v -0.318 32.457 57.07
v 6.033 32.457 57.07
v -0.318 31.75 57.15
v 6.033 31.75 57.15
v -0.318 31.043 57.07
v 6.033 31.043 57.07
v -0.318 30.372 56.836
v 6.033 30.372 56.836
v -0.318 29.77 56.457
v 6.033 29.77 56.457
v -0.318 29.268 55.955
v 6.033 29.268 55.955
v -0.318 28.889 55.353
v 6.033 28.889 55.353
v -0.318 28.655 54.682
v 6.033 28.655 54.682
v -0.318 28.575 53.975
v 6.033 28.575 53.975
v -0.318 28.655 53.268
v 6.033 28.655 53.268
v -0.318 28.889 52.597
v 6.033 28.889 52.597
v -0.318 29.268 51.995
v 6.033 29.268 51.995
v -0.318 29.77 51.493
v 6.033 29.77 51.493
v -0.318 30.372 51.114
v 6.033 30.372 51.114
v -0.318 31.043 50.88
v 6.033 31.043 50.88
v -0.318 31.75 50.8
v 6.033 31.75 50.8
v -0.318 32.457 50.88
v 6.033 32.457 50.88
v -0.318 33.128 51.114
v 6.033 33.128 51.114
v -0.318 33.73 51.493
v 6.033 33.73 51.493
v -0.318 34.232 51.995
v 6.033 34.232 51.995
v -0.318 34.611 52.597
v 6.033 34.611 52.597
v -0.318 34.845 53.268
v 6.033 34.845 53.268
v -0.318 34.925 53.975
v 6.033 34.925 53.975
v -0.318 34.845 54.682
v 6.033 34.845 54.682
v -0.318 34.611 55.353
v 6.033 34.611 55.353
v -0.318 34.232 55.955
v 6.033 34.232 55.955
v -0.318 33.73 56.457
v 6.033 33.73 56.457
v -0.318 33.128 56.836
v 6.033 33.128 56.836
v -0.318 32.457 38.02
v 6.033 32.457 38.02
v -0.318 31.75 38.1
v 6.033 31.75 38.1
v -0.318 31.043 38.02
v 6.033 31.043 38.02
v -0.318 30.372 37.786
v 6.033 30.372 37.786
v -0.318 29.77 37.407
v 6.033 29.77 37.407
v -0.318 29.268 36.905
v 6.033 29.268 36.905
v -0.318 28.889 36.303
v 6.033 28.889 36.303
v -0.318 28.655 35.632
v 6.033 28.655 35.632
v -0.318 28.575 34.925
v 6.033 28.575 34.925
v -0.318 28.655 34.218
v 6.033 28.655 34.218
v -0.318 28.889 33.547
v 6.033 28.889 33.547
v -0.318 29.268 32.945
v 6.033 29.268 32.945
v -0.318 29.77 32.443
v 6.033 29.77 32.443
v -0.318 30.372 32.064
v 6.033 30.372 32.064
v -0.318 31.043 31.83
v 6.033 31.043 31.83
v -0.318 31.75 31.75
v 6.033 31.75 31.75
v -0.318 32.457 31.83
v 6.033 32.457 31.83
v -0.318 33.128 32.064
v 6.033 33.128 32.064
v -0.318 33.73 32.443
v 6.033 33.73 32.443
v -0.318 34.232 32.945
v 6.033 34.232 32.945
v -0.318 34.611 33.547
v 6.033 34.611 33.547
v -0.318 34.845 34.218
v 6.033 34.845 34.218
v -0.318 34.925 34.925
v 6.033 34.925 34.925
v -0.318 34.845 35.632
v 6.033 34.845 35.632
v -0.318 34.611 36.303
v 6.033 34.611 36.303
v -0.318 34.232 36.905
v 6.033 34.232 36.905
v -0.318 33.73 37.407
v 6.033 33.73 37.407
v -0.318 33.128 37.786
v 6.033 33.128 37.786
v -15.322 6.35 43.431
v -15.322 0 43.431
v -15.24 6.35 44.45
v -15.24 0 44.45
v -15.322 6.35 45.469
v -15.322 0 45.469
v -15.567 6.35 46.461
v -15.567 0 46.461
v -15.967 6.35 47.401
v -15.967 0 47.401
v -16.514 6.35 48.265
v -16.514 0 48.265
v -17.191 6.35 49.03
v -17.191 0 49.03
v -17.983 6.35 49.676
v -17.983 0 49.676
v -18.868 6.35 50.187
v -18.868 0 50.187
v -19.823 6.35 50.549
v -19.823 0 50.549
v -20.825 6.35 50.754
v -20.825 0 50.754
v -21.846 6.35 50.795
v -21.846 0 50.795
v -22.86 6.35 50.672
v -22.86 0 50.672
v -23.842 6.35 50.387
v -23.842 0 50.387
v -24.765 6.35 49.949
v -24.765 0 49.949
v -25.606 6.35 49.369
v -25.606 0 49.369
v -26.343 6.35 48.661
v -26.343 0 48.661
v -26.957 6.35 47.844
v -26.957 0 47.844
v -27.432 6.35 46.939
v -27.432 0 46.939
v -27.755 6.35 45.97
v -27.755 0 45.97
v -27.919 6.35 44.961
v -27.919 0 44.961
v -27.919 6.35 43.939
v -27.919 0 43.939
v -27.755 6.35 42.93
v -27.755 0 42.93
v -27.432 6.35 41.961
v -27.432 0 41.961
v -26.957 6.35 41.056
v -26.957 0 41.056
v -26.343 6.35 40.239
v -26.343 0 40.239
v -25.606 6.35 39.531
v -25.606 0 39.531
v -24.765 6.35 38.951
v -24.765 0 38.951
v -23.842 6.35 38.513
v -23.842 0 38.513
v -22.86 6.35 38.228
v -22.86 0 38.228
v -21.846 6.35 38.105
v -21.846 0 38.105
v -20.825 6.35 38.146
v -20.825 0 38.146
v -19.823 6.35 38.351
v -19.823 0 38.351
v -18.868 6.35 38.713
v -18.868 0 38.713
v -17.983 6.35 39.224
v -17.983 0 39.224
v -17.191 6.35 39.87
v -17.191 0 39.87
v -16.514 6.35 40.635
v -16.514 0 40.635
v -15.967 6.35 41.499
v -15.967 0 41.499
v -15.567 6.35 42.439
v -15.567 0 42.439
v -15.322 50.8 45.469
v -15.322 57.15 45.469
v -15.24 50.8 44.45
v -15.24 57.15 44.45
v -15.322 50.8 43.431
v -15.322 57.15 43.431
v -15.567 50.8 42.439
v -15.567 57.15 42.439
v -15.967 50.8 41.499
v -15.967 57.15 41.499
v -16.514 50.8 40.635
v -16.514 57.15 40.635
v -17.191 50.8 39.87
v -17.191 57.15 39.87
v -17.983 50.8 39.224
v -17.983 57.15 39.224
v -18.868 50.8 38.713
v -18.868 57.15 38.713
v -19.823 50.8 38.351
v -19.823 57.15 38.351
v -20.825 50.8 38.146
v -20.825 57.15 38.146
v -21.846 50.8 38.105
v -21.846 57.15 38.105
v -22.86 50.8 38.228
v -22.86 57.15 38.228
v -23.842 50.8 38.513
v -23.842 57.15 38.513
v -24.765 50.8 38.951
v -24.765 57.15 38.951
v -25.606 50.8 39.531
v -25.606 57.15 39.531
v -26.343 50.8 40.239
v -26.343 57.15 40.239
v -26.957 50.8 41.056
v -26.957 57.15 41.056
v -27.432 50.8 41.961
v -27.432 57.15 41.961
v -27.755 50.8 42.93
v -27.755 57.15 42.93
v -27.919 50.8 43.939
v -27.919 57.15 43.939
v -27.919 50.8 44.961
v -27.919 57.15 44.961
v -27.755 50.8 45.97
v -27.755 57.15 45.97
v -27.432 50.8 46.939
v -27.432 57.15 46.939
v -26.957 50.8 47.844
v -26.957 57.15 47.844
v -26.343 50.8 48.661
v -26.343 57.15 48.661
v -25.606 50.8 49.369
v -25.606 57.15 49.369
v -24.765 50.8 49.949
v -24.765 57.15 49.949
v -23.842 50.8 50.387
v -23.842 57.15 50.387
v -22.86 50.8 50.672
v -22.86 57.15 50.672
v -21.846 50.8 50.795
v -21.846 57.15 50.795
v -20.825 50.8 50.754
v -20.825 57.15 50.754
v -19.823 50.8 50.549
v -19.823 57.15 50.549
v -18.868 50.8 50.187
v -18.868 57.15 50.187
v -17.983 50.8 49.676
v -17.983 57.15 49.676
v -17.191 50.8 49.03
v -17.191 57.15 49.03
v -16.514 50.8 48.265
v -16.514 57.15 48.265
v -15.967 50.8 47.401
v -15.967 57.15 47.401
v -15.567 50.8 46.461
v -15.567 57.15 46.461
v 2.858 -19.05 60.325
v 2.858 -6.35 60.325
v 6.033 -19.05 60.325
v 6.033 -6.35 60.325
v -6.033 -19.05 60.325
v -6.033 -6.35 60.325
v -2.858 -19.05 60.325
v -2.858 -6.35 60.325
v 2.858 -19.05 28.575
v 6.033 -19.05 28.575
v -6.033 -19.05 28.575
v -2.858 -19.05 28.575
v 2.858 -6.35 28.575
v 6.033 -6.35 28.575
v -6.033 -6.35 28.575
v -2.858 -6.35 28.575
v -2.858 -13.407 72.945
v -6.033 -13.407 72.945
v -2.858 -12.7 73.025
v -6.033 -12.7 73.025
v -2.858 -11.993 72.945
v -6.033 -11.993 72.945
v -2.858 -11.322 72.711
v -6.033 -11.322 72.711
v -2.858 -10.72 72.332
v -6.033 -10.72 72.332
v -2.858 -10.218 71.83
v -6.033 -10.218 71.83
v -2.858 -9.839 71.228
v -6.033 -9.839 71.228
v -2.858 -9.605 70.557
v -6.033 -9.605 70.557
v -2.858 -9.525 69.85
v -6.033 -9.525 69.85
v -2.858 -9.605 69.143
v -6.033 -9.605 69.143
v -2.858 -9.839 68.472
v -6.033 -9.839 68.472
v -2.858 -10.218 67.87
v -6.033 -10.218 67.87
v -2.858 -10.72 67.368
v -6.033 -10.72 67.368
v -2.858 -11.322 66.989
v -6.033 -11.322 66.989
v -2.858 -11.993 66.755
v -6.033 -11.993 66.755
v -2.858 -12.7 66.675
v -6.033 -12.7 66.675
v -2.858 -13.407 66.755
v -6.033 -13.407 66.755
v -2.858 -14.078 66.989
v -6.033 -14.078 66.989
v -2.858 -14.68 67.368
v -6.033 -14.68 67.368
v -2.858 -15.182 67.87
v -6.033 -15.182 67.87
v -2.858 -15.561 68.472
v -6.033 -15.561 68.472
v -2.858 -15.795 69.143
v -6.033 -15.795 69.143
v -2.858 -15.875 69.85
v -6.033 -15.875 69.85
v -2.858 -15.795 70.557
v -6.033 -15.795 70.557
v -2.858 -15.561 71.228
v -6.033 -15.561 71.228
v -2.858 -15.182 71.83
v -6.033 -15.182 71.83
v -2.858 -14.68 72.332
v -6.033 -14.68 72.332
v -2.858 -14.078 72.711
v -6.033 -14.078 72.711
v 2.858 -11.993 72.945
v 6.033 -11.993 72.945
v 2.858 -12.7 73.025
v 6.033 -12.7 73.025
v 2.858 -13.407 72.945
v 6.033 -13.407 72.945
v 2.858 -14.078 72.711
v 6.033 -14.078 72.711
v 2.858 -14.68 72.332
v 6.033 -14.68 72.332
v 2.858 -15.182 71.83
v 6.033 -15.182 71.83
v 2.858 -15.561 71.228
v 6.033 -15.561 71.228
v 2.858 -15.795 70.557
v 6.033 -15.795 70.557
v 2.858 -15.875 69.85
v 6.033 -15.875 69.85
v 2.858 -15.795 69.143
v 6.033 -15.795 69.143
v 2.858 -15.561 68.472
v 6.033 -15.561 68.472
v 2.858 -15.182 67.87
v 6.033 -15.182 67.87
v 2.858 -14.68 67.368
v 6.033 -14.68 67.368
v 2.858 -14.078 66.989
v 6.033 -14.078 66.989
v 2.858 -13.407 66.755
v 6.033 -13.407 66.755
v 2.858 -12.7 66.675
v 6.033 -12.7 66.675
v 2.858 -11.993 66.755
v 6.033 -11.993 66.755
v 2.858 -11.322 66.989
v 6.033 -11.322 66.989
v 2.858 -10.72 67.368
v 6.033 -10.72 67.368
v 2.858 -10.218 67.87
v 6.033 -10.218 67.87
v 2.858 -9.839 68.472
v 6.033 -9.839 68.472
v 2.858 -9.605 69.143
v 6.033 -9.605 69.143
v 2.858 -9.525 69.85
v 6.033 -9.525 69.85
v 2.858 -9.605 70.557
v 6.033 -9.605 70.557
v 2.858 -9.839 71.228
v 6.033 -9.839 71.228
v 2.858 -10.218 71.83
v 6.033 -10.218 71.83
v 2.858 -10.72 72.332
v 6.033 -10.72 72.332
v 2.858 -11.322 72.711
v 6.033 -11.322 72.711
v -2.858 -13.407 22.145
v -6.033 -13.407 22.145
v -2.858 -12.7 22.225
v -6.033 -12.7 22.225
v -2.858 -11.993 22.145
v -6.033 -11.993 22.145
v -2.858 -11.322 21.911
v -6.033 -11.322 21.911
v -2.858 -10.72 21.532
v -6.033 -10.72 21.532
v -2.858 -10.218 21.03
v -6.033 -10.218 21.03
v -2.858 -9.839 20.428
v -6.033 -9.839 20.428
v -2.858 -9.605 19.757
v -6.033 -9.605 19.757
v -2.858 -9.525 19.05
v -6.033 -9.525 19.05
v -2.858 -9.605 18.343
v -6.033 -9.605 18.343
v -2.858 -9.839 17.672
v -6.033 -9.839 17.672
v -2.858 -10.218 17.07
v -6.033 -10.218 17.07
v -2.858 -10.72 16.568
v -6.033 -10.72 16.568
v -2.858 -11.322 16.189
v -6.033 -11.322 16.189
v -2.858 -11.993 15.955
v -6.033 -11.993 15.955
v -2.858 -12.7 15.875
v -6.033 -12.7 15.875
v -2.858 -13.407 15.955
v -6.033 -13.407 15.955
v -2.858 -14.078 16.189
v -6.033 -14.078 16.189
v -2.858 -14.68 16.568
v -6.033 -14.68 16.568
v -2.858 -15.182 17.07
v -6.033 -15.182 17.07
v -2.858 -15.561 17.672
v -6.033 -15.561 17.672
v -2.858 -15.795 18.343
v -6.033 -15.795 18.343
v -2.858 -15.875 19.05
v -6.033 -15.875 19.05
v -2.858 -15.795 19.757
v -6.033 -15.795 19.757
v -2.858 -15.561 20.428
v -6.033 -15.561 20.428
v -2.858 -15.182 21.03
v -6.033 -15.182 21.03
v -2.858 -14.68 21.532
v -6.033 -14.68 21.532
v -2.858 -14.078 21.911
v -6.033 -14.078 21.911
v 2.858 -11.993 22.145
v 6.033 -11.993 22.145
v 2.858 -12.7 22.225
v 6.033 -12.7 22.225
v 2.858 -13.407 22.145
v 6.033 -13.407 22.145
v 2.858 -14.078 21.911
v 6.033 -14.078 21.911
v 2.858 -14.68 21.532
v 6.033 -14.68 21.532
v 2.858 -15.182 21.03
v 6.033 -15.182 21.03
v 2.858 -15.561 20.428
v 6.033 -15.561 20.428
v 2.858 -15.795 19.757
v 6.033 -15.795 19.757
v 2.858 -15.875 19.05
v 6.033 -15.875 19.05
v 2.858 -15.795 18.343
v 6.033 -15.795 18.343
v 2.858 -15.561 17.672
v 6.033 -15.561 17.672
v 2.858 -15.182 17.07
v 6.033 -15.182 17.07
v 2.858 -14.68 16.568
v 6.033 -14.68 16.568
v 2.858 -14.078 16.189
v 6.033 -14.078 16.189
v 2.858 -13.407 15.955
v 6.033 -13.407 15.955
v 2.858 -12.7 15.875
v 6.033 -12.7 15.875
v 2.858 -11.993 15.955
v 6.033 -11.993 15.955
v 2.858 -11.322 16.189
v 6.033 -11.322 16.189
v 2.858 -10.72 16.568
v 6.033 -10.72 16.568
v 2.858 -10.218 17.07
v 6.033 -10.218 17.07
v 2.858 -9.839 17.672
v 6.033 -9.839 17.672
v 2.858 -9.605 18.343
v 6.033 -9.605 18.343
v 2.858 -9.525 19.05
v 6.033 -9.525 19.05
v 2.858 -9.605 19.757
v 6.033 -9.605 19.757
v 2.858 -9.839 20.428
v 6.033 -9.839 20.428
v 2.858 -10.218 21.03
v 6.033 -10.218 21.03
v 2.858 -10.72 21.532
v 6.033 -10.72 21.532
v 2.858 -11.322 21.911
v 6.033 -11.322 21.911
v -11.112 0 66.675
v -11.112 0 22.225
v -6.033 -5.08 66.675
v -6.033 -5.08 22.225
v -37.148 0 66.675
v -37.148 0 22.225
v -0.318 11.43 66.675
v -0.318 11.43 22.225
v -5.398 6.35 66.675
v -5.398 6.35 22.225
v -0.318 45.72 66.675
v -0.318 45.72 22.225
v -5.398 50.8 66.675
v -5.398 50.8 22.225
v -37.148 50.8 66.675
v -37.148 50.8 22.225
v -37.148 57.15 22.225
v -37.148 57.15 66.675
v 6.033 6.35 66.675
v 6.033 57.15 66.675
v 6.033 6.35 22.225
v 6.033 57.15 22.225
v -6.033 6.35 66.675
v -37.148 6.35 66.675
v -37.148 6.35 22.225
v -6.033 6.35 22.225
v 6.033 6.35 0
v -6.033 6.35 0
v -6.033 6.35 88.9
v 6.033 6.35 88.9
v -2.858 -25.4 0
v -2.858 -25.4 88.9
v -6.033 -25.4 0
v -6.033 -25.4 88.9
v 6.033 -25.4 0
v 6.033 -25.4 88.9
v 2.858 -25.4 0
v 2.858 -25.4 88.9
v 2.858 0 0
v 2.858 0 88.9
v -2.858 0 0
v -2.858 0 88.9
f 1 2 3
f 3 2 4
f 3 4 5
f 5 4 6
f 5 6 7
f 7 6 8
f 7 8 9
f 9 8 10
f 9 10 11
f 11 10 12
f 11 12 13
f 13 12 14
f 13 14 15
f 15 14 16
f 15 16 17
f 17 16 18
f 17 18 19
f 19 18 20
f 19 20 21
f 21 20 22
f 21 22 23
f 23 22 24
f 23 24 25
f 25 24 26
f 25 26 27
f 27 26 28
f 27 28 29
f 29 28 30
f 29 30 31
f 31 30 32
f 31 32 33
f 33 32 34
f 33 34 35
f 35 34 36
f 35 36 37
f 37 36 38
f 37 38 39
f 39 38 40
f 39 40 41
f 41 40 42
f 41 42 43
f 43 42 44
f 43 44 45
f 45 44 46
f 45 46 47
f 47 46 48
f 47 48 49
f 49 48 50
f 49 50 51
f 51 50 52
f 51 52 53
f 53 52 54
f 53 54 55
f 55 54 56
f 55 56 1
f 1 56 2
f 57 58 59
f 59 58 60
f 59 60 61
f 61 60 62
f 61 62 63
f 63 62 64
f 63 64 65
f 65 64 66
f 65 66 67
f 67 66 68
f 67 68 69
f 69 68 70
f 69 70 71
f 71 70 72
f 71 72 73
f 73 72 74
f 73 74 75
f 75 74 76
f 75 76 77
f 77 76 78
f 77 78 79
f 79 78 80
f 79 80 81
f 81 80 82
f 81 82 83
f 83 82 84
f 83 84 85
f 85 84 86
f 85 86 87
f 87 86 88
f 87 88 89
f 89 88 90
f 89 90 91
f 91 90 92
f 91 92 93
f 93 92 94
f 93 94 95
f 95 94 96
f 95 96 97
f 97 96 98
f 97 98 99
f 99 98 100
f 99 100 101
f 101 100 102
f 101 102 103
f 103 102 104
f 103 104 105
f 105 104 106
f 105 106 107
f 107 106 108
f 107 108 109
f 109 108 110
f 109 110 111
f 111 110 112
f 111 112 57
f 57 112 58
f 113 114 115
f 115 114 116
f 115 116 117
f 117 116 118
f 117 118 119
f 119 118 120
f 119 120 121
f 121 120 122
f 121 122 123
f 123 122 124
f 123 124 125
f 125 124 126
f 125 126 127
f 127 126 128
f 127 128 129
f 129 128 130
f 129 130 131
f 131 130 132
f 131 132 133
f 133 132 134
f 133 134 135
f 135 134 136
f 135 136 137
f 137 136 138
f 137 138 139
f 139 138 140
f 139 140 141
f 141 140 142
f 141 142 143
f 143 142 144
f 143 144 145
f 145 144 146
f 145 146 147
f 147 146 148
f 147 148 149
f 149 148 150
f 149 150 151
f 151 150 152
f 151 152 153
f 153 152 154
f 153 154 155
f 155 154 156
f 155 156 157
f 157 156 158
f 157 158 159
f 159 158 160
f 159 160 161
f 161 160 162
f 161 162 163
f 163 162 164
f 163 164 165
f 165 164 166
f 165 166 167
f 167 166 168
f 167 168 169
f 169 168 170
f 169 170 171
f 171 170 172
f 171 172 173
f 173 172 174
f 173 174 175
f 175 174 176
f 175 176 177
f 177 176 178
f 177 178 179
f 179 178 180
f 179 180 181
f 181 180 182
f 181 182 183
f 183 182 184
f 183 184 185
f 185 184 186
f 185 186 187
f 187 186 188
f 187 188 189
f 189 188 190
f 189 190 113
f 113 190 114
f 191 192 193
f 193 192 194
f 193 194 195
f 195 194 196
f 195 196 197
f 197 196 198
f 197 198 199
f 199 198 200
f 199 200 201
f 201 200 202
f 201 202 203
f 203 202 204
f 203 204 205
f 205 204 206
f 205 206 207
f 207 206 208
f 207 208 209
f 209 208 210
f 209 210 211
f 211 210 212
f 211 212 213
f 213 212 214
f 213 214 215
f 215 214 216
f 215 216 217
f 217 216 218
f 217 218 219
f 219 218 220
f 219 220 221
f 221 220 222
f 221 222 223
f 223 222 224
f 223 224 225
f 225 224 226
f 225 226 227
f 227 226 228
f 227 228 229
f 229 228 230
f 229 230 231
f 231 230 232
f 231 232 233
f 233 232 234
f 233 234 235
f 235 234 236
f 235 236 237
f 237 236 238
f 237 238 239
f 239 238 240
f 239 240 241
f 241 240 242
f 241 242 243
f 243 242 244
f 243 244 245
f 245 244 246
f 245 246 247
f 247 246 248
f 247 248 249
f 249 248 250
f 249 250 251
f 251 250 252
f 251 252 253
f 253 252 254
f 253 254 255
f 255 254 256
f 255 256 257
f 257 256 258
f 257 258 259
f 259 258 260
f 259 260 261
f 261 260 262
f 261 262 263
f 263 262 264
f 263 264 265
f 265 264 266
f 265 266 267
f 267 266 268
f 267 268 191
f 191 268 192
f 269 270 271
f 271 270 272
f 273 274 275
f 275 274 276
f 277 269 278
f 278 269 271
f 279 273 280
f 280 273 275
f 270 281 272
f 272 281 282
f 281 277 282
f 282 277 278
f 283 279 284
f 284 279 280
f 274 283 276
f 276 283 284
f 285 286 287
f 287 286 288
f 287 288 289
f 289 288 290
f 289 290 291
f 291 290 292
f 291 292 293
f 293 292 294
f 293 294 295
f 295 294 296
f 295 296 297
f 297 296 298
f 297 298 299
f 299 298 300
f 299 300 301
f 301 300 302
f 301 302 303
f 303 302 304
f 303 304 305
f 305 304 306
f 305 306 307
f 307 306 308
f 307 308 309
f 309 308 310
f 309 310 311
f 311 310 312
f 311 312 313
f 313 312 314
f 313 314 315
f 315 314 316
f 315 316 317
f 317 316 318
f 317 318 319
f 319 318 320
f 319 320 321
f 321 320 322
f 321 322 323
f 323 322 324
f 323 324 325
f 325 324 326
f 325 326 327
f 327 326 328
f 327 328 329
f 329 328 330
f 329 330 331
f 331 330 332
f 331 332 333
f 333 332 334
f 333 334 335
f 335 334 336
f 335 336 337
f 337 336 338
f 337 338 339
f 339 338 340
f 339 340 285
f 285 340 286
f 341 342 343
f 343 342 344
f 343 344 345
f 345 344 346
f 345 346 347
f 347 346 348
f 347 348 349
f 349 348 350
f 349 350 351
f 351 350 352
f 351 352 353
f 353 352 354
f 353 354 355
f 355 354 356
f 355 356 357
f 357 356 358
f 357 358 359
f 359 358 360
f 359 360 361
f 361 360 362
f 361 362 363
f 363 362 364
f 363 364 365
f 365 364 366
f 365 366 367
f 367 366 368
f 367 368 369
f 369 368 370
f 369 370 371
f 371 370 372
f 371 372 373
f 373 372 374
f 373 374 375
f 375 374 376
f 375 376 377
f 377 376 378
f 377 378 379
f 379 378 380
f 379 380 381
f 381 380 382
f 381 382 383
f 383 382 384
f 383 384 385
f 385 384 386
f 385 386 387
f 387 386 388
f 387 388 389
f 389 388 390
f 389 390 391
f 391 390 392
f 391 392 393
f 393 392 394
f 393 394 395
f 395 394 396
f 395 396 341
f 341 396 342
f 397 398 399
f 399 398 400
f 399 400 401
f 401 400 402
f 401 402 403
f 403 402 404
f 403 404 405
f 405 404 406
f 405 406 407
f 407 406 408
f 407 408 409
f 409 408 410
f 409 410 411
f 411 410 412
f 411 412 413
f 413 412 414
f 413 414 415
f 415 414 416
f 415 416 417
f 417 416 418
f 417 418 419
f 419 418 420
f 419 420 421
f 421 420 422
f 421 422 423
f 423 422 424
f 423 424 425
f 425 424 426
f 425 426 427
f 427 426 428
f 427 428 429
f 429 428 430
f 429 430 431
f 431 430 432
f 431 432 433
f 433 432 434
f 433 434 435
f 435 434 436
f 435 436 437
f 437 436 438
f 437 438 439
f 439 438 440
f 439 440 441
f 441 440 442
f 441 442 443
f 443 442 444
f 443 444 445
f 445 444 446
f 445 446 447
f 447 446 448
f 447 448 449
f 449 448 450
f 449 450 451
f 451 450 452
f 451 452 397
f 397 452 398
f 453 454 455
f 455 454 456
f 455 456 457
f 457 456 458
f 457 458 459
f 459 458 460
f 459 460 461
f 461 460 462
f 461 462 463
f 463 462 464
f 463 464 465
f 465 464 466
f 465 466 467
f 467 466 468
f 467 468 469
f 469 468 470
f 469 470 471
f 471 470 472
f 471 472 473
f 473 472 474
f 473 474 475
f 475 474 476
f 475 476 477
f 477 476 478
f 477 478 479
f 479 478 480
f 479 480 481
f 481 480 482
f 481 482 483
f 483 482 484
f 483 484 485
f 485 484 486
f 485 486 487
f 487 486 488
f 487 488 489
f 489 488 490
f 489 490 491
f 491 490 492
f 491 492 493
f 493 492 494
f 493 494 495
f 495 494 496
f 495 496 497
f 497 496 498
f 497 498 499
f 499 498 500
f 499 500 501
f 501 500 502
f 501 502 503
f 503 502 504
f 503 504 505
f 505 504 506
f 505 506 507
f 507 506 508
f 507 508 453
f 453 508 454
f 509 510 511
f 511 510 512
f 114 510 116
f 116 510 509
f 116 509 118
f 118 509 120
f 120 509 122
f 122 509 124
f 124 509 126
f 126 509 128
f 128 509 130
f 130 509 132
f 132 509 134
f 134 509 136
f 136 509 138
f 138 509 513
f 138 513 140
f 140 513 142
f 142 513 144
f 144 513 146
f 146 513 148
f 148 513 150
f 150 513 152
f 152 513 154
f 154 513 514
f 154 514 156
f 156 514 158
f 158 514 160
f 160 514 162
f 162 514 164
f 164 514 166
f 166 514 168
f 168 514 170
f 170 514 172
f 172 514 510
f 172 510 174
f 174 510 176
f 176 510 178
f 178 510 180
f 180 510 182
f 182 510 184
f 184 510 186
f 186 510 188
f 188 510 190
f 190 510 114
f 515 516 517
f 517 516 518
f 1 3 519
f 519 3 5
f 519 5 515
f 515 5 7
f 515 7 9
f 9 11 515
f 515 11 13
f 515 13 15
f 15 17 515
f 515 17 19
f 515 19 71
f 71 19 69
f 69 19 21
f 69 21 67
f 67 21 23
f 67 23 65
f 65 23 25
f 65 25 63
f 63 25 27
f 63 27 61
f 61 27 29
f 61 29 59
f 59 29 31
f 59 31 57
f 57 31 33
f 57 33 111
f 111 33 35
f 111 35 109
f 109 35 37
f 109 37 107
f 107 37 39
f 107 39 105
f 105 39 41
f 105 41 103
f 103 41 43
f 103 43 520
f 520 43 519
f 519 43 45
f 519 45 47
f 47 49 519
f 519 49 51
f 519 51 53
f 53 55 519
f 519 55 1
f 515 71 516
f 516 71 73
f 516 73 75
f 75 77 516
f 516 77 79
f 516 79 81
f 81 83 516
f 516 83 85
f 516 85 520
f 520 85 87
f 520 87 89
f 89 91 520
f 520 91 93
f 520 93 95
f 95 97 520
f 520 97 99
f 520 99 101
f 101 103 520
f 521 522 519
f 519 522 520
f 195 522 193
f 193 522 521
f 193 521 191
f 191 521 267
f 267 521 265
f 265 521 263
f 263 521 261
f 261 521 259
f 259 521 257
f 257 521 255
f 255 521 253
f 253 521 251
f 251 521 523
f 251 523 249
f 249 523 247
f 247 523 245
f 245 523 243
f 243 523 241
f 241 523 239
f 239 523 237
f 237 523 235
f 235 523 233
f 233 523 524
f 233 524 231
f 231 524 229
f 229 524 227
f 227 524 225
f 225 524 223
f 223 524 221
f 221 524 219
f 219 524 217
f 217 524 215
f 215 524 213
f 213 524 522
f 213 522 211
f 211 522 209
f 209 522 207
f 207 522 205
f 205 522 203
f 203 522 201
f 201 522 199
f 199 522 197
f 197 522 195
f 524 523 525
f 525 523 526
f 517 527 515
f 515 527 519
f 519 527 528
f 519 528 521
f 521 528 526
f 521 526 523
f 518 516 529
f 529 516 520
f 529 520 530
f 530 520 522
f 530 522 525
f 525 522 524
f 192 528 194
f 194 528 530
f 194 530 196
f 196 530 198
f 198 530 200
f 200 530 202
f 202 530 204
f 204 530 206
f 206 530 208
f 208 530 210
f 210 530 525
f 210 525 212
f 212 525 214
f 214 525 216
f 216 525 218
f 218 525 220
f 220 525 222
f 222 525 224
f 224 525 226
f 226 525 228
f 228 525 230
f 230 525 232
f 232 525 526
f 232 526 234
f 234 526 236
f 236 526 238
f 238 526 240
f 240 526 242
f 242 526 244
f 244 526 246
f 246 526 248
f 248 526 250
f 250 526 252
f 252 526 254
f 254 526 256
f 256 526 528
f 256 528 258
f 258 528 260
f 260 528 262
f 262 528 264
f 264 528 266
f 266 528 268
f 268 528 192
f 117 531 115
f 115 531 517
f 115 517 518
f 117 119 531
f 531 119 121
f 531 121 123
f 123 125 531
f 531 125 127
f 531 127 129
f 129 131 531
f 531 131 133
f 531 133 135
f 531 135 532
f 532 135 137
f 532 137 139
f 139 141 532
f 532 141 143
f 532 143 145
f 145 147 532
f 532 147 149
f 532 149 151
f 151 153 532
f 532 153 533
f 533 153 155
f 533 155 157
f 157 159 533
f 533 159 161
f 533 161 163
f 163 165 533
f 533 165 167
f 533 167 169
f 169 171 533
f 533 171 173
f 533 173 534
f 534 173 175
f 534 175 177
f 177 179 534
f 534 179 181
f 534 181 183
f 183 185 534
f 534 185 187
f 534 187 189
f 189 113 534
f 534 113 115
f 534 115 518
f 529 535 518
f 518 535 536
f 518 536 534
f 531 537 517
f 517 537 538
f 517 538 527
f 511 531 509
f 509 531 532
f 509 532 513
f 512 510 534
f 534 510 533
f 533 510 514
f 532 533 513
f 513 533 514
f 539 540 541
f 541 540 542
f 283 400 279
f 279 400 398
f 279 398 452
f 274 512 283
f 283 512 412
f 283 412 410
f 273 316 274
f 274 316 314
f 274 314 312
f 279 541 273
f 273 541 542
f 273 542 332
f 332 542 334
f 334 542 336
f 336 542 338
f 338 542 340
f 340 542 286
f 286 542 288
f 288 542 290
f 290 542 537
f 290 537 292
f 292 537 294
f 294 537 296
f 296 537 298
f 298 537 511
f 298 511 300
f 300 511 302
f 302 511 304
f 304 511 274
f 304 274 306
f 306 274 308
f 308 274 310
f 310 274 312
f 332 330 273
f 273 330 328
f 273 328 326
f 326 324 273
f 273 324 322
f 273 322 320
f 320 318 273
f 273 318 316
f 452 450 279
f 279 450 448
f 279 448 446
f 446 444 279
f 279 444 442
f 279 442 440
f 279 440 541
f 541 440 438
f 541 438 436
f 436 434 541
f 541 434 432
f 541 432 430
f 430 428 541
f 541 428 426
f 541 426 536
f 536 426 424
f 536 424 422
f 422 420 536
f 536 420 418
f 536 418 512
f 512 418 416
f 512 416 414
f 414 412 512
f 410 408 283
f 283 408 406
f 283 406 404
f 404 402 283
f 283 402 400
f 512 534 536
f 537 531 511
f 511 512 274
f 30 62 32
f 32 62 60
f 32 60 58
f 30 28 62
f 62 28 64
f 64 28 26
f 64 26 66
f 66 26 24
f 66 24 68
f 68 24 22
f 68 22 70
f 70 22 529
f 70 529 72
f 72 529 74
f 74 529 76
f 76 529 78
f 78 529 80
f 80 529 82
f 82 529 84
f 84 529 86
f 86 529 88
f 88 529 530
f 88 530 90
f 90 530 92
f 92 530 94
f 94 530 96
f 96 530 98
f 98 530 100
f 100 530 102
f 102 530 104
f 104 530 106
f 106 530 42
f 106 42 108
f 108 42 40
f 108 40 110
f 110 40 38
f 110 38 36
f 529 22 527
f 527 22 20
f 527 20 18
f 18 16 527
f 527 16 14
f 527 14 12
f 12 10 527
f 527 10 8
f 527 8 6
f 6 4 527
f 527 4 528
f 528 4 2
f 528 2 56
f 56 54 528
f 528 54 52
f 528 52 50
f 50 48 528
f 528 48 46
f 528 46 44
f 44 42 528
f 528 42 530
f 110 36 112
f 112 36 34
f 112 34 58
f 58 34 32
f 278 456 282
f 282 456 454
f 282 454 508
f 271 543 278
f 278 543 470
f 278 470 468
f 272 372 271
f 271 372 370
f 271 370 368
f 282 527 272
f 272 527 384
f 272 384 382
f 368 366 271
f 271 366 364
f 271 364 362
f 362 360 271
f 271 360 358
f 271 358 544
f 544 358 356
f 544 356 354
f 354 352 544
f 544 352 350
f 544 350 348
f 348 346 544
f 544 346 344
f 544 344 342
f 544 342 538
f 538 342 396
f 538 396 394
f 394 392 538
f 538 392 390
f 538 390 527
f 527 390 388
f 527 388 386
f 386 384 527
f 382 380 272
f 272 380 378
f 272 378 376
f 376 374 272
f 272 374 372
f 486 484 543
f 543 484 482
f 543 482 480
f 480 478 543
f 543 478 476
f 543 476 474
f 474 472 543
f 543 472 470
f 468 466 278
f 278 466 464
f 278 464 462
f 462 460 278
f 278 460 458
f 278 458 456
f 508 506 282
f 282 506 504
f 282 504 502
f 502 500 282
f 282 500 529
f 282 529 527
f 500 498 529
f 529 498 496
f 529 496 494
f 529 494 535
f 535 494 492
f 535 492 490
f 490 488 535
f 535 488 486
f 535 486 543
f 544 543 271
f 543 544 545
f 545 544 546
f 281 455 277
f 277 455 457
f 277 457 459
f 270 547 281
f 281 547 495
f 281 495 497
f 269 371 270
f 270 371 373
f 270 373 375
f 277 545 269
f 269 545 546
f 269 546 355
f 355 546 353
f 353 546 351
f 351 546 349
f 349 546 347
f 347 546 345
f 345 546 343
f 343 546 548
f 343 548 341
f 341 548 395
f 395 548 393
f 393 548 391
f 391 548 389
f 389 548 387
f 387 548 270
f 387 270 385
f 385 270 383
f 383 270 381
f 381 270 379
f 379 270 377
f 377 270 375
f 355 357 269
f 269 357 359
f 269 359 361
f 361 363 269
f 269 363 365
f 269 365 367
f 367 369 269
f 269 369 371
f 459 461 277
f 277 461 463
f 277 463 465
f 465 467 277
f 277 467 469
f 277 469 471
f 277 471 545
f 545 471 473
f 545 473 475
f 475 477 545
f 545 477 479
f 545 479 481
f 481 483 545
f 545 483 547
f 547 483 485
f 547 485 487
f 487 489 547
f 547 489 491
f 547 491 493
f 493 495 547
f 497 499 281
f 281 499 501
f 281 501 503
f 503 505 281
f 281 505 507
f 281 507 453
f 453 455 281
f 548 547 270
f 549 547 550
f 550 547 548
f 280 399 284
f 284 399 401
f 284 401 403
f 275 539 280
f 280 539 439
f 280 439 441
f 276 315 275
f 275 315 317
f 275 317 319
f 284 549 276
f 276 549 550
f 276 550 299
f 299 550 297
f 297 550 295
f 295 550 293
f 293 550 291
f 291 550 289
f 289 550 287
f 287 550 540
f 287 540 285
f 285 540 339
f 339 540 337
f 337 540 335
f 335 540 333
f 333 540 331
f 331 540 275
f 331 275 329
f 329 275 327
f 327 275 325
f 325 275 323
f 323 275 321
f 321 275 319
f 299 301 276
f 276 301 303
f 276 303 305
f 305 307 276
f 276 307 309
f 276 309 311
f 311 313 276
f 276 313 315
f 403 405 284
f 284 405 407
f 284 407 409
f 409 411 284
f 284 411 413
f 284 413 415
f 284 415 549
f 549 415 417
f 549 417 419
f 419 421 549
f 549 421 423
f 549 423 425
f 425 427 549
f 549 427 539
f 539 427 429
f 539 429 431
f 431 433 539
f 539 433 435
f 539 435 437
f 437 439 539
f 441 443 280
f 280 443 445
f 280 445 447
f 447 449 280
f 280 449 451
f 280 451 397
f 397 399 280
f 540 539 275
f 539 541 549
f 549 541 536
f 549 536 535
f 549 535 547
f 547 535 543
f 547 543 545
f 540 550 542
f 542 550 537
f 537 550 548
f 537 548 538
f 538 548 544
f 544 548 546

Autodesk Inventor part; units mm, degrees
ref_plane "YZ Plane" through (0, 0, 0) normal (1, 0, 0) x (0, 1, 0)
ref_plane "XZ Plane" through (0, 0, 0) normal (0, 1, 0) x (-1, 0, 0)
ref_plane "XY Plane" through (0, 0, 0) normal (0, 0, 1) x (1, 0, 0)
sketch "Sketch1" plane through (0, 0, 0) normal (0, 0, 1) x (1, 0, 0)
  line L0 (-2.8575, 0) -> (-2.8575, -25.4)
  line L1 (-2.8575, -25.4) -> (-6.0325, -25.4)
  line L2 (-6.0325, -25.4) -> (-6.0325, 6.35)
  line L3 (2.8575, 0) -> (2.8575, -25.4)
  line L4 (2.8575, -25.4) -> (6.0325, -25.4)
  line L5 (6.0325, -25.4) -> (6.0325, 6.35)
  line L6 (-6.0325, 6.35) -> (6.0325, 6.35)
  line L7 (2.8575, 0) -> (-2.8575, 0)
  point P0 (0, 0)
  point P1 (0, 0)
  dimension "d0" = 5.715
  dimension "d1" = 3.175
  dimension "d2" = 25.4
  dimension "d3" = 31.75
extrude "Extrusion1" add sketch "Sketch1" along normal blind 88.9
sketch "Sketch2" plane through (-6.0325, -25.4, 0) normal (-1, 0, 0) x (0, 0, 1)
  line L0 (22.225, 31.75) -> (66.675, 31.75)
  line L1 (66.675, 31.75) -> (66.675, 25.4)
  line L2 (66.675, 25.4) -> (22.225, 25.4)
  line L3 (22.225, 25.4) -> (22.225, 31.75)
  line L4 (0, 31.75) -> (88.9, 31.75) projected
  point P0 (0, 25.4)
  point P1 (44.45, 31.75)
  dimension "d9" = 6.35
  dimension "d10" = 44.45
extrude "Extrusion2" add sketch "Sketch2" along normal blind 31.115
sketch "Sketch3" plane through (-6.0325, 6.35, 0) normal (0, 1, 0) x (1, 0, 0)
  line L0 (12.065, 0) -> (12.065, -88.9) projected
  line L1 (12.065, -22.225) -> (5.715, -22.225)
  line L2 (5.715, -22.225) -> (5.715, -66.675)
  line L3 (5.715, -66.675) -> (12.065, -66.675)
  line L4 (12.065, -66.675) -> (12.065, -22.225)
  line L5 (0, -22.225) -> (-31.115, -22.225) projected
  line L6 (0, -66.675) -> (-31.115, -66.675) projected
  point P0 (6.0325, 0)
  dimension "d13" = 6.35
extrude "Extrusion3" add sketch "Sketch3" along normal blind 50.8
sketch "Sketch4" plane through (-0.3175, 57.15, 22.225) normal (-1, 0, 0) x (0, 0, 1)
  line L0 (0, -50.8) -> (0, 0) projected
  line L1 (44.45, 0) -> (0, 0)
  line L2 (0, 0) -> (0, -6.35)
  line L3 (0, -6.35) -> (44.45, -6.35)
  line L4 (44.45, -6.35) -> (44.45, 0)
  line L5 (0, 0) -> (44.45, 0) projected
  line L6 (44.45, -50.8) -> (44.45, 0) projected
  point P0 (-22.225, -57.15)
  point P1 (44.45, -45.72)
  dimension "d17" = 6.35
extrude "Extrusion4" add sketch "Sketch4" along normal up to surface (36.83 mm away)
chamfer "Chamfer1" distance 5.08 angle 45 1 edges at (-0.3175, 50.8, 44.45)
chamfer "Chamfer2" distance 5.08 angle 45 1 edges at (-0.3175, 6.35, 44.45)
chamfer "Chamfer3" distance 5.08 angle 45 1 edges at (-6.0325, 0, 44.45)
sketch "Sketch5" plane through (6.0325, -25.4, 0) normal (1, 0, 0) x (0, 0, -1)
  line L0 (-88.9, 0) -> (-88.9, 31.75) projected
  line L1 (0, 31.75) -> (0, 0) projected
  line L2 (0, 0) -> (-88.9, 0) projected
  point P0 (0, 25.4)
  point P1 (-69.85, 12.7)
  point P2 (-19.05, 12.7)
  dimension "d29" = 19.05
  dimension "d30" = 19.05
  dimension "d31" = 12.7
  dimension "d32" = 12.7
hole "Hole1" at (6.0325, -12.7, 69.85) at (6.0325, -12.7, 19.05) direction (-1, 0, 0) diameter 6.35 end through all
sketch "Sketch6" plane through (6.0325, -25.4, 0) normal (1, 0, 0) x (0, 0, -1)
  line L0 (-28.575, 6.35) -> (-60.325, 6.35)
  line L1 (-60.325, 6.35) -> (-60.325, 19.05)
  line L2 (-60.325, 19.05) -> (-28.575, 19.05)
  line L3 (-28.575, 19.05) -> (-28.575, 6.35)
  circle A0 centre (-69.85, 12.7) radius 3.175 projected
  circle A1 centre (-19.05, 12.7) radius 3.175 projected
  line L4 (0, 0) -> (-88.9, 0) projected
  point P0 (0, 25.4)
  dimension "d40" = 31.75
  dimension "d41" = 50.8
  dimension "d42" = 9.525
  dimension "d43" = 12.7
  dimension "d44" = 6.35
extrude "Extrusion5" cut sketch "Sketch6" against normal blind 50.8 contours L0 L1 L2 L3
sketch "Sketch7" plane through (-6.0325, 57.15, 0) normal (0, 1, 0) x (1, 0, 0)
  circle A0 centre (-15.5575, -44.45) radius 6.35
  line L0 (-31.115, -22.225) -> (-31.115, -66.675) projected
  line L1 (0, -22.225) -> (0, -66.675) projected
  line L2 (12.065, -66.675) -> (-31.115, -66.675) projected
  line L3 (12.065, -22.225) -> (-31.115, -22.225) projected
  point P0 (6.0325, 0)
  dimension "d47" = 15.5575
  dimension "d48" = 31.115
  dimension "d49" = 44.45
  dimension "d50" = 22.225
  dimension "d51" = 12.7
extrude "Extrusion6" cut sketch "Sketch7" against normal blind 101.6 contours A0
sketch "Sketch8" plane through (6.0325, -25.4, 0) normal (1, 0, 0) x (0, 0, -1)
  line L0 (-66.675, 31.75) -> (-66.675, 82.55) projected
  line L1 (-66.675, 82.55) -> (-22.225, 82.55) projected
  point P0 (0, 25.4)
  point P1 (-53.975, 57.15)
  point P2 (-34.925, 57.15)
  dimension "d54" = 19.05
  dimension "d55" = 12.7
  dimension "d56" = 25.4
  dimension "d57" = 50.8
  dimension "d58" = 25.4
hole "Hole2" at (6.0325, 31.75, 53.975) at (6.0325, 31.75, 34.925) direction (-1, 0, 0) diameter 6.35 end through all
equation "\"d47\" = 0.5 * d48"
equation "\"d50\" = 0.5 * d49"
equation "\"d56\" = 0.5 * d57"
properties part number "Suspension Frame 3.0"
